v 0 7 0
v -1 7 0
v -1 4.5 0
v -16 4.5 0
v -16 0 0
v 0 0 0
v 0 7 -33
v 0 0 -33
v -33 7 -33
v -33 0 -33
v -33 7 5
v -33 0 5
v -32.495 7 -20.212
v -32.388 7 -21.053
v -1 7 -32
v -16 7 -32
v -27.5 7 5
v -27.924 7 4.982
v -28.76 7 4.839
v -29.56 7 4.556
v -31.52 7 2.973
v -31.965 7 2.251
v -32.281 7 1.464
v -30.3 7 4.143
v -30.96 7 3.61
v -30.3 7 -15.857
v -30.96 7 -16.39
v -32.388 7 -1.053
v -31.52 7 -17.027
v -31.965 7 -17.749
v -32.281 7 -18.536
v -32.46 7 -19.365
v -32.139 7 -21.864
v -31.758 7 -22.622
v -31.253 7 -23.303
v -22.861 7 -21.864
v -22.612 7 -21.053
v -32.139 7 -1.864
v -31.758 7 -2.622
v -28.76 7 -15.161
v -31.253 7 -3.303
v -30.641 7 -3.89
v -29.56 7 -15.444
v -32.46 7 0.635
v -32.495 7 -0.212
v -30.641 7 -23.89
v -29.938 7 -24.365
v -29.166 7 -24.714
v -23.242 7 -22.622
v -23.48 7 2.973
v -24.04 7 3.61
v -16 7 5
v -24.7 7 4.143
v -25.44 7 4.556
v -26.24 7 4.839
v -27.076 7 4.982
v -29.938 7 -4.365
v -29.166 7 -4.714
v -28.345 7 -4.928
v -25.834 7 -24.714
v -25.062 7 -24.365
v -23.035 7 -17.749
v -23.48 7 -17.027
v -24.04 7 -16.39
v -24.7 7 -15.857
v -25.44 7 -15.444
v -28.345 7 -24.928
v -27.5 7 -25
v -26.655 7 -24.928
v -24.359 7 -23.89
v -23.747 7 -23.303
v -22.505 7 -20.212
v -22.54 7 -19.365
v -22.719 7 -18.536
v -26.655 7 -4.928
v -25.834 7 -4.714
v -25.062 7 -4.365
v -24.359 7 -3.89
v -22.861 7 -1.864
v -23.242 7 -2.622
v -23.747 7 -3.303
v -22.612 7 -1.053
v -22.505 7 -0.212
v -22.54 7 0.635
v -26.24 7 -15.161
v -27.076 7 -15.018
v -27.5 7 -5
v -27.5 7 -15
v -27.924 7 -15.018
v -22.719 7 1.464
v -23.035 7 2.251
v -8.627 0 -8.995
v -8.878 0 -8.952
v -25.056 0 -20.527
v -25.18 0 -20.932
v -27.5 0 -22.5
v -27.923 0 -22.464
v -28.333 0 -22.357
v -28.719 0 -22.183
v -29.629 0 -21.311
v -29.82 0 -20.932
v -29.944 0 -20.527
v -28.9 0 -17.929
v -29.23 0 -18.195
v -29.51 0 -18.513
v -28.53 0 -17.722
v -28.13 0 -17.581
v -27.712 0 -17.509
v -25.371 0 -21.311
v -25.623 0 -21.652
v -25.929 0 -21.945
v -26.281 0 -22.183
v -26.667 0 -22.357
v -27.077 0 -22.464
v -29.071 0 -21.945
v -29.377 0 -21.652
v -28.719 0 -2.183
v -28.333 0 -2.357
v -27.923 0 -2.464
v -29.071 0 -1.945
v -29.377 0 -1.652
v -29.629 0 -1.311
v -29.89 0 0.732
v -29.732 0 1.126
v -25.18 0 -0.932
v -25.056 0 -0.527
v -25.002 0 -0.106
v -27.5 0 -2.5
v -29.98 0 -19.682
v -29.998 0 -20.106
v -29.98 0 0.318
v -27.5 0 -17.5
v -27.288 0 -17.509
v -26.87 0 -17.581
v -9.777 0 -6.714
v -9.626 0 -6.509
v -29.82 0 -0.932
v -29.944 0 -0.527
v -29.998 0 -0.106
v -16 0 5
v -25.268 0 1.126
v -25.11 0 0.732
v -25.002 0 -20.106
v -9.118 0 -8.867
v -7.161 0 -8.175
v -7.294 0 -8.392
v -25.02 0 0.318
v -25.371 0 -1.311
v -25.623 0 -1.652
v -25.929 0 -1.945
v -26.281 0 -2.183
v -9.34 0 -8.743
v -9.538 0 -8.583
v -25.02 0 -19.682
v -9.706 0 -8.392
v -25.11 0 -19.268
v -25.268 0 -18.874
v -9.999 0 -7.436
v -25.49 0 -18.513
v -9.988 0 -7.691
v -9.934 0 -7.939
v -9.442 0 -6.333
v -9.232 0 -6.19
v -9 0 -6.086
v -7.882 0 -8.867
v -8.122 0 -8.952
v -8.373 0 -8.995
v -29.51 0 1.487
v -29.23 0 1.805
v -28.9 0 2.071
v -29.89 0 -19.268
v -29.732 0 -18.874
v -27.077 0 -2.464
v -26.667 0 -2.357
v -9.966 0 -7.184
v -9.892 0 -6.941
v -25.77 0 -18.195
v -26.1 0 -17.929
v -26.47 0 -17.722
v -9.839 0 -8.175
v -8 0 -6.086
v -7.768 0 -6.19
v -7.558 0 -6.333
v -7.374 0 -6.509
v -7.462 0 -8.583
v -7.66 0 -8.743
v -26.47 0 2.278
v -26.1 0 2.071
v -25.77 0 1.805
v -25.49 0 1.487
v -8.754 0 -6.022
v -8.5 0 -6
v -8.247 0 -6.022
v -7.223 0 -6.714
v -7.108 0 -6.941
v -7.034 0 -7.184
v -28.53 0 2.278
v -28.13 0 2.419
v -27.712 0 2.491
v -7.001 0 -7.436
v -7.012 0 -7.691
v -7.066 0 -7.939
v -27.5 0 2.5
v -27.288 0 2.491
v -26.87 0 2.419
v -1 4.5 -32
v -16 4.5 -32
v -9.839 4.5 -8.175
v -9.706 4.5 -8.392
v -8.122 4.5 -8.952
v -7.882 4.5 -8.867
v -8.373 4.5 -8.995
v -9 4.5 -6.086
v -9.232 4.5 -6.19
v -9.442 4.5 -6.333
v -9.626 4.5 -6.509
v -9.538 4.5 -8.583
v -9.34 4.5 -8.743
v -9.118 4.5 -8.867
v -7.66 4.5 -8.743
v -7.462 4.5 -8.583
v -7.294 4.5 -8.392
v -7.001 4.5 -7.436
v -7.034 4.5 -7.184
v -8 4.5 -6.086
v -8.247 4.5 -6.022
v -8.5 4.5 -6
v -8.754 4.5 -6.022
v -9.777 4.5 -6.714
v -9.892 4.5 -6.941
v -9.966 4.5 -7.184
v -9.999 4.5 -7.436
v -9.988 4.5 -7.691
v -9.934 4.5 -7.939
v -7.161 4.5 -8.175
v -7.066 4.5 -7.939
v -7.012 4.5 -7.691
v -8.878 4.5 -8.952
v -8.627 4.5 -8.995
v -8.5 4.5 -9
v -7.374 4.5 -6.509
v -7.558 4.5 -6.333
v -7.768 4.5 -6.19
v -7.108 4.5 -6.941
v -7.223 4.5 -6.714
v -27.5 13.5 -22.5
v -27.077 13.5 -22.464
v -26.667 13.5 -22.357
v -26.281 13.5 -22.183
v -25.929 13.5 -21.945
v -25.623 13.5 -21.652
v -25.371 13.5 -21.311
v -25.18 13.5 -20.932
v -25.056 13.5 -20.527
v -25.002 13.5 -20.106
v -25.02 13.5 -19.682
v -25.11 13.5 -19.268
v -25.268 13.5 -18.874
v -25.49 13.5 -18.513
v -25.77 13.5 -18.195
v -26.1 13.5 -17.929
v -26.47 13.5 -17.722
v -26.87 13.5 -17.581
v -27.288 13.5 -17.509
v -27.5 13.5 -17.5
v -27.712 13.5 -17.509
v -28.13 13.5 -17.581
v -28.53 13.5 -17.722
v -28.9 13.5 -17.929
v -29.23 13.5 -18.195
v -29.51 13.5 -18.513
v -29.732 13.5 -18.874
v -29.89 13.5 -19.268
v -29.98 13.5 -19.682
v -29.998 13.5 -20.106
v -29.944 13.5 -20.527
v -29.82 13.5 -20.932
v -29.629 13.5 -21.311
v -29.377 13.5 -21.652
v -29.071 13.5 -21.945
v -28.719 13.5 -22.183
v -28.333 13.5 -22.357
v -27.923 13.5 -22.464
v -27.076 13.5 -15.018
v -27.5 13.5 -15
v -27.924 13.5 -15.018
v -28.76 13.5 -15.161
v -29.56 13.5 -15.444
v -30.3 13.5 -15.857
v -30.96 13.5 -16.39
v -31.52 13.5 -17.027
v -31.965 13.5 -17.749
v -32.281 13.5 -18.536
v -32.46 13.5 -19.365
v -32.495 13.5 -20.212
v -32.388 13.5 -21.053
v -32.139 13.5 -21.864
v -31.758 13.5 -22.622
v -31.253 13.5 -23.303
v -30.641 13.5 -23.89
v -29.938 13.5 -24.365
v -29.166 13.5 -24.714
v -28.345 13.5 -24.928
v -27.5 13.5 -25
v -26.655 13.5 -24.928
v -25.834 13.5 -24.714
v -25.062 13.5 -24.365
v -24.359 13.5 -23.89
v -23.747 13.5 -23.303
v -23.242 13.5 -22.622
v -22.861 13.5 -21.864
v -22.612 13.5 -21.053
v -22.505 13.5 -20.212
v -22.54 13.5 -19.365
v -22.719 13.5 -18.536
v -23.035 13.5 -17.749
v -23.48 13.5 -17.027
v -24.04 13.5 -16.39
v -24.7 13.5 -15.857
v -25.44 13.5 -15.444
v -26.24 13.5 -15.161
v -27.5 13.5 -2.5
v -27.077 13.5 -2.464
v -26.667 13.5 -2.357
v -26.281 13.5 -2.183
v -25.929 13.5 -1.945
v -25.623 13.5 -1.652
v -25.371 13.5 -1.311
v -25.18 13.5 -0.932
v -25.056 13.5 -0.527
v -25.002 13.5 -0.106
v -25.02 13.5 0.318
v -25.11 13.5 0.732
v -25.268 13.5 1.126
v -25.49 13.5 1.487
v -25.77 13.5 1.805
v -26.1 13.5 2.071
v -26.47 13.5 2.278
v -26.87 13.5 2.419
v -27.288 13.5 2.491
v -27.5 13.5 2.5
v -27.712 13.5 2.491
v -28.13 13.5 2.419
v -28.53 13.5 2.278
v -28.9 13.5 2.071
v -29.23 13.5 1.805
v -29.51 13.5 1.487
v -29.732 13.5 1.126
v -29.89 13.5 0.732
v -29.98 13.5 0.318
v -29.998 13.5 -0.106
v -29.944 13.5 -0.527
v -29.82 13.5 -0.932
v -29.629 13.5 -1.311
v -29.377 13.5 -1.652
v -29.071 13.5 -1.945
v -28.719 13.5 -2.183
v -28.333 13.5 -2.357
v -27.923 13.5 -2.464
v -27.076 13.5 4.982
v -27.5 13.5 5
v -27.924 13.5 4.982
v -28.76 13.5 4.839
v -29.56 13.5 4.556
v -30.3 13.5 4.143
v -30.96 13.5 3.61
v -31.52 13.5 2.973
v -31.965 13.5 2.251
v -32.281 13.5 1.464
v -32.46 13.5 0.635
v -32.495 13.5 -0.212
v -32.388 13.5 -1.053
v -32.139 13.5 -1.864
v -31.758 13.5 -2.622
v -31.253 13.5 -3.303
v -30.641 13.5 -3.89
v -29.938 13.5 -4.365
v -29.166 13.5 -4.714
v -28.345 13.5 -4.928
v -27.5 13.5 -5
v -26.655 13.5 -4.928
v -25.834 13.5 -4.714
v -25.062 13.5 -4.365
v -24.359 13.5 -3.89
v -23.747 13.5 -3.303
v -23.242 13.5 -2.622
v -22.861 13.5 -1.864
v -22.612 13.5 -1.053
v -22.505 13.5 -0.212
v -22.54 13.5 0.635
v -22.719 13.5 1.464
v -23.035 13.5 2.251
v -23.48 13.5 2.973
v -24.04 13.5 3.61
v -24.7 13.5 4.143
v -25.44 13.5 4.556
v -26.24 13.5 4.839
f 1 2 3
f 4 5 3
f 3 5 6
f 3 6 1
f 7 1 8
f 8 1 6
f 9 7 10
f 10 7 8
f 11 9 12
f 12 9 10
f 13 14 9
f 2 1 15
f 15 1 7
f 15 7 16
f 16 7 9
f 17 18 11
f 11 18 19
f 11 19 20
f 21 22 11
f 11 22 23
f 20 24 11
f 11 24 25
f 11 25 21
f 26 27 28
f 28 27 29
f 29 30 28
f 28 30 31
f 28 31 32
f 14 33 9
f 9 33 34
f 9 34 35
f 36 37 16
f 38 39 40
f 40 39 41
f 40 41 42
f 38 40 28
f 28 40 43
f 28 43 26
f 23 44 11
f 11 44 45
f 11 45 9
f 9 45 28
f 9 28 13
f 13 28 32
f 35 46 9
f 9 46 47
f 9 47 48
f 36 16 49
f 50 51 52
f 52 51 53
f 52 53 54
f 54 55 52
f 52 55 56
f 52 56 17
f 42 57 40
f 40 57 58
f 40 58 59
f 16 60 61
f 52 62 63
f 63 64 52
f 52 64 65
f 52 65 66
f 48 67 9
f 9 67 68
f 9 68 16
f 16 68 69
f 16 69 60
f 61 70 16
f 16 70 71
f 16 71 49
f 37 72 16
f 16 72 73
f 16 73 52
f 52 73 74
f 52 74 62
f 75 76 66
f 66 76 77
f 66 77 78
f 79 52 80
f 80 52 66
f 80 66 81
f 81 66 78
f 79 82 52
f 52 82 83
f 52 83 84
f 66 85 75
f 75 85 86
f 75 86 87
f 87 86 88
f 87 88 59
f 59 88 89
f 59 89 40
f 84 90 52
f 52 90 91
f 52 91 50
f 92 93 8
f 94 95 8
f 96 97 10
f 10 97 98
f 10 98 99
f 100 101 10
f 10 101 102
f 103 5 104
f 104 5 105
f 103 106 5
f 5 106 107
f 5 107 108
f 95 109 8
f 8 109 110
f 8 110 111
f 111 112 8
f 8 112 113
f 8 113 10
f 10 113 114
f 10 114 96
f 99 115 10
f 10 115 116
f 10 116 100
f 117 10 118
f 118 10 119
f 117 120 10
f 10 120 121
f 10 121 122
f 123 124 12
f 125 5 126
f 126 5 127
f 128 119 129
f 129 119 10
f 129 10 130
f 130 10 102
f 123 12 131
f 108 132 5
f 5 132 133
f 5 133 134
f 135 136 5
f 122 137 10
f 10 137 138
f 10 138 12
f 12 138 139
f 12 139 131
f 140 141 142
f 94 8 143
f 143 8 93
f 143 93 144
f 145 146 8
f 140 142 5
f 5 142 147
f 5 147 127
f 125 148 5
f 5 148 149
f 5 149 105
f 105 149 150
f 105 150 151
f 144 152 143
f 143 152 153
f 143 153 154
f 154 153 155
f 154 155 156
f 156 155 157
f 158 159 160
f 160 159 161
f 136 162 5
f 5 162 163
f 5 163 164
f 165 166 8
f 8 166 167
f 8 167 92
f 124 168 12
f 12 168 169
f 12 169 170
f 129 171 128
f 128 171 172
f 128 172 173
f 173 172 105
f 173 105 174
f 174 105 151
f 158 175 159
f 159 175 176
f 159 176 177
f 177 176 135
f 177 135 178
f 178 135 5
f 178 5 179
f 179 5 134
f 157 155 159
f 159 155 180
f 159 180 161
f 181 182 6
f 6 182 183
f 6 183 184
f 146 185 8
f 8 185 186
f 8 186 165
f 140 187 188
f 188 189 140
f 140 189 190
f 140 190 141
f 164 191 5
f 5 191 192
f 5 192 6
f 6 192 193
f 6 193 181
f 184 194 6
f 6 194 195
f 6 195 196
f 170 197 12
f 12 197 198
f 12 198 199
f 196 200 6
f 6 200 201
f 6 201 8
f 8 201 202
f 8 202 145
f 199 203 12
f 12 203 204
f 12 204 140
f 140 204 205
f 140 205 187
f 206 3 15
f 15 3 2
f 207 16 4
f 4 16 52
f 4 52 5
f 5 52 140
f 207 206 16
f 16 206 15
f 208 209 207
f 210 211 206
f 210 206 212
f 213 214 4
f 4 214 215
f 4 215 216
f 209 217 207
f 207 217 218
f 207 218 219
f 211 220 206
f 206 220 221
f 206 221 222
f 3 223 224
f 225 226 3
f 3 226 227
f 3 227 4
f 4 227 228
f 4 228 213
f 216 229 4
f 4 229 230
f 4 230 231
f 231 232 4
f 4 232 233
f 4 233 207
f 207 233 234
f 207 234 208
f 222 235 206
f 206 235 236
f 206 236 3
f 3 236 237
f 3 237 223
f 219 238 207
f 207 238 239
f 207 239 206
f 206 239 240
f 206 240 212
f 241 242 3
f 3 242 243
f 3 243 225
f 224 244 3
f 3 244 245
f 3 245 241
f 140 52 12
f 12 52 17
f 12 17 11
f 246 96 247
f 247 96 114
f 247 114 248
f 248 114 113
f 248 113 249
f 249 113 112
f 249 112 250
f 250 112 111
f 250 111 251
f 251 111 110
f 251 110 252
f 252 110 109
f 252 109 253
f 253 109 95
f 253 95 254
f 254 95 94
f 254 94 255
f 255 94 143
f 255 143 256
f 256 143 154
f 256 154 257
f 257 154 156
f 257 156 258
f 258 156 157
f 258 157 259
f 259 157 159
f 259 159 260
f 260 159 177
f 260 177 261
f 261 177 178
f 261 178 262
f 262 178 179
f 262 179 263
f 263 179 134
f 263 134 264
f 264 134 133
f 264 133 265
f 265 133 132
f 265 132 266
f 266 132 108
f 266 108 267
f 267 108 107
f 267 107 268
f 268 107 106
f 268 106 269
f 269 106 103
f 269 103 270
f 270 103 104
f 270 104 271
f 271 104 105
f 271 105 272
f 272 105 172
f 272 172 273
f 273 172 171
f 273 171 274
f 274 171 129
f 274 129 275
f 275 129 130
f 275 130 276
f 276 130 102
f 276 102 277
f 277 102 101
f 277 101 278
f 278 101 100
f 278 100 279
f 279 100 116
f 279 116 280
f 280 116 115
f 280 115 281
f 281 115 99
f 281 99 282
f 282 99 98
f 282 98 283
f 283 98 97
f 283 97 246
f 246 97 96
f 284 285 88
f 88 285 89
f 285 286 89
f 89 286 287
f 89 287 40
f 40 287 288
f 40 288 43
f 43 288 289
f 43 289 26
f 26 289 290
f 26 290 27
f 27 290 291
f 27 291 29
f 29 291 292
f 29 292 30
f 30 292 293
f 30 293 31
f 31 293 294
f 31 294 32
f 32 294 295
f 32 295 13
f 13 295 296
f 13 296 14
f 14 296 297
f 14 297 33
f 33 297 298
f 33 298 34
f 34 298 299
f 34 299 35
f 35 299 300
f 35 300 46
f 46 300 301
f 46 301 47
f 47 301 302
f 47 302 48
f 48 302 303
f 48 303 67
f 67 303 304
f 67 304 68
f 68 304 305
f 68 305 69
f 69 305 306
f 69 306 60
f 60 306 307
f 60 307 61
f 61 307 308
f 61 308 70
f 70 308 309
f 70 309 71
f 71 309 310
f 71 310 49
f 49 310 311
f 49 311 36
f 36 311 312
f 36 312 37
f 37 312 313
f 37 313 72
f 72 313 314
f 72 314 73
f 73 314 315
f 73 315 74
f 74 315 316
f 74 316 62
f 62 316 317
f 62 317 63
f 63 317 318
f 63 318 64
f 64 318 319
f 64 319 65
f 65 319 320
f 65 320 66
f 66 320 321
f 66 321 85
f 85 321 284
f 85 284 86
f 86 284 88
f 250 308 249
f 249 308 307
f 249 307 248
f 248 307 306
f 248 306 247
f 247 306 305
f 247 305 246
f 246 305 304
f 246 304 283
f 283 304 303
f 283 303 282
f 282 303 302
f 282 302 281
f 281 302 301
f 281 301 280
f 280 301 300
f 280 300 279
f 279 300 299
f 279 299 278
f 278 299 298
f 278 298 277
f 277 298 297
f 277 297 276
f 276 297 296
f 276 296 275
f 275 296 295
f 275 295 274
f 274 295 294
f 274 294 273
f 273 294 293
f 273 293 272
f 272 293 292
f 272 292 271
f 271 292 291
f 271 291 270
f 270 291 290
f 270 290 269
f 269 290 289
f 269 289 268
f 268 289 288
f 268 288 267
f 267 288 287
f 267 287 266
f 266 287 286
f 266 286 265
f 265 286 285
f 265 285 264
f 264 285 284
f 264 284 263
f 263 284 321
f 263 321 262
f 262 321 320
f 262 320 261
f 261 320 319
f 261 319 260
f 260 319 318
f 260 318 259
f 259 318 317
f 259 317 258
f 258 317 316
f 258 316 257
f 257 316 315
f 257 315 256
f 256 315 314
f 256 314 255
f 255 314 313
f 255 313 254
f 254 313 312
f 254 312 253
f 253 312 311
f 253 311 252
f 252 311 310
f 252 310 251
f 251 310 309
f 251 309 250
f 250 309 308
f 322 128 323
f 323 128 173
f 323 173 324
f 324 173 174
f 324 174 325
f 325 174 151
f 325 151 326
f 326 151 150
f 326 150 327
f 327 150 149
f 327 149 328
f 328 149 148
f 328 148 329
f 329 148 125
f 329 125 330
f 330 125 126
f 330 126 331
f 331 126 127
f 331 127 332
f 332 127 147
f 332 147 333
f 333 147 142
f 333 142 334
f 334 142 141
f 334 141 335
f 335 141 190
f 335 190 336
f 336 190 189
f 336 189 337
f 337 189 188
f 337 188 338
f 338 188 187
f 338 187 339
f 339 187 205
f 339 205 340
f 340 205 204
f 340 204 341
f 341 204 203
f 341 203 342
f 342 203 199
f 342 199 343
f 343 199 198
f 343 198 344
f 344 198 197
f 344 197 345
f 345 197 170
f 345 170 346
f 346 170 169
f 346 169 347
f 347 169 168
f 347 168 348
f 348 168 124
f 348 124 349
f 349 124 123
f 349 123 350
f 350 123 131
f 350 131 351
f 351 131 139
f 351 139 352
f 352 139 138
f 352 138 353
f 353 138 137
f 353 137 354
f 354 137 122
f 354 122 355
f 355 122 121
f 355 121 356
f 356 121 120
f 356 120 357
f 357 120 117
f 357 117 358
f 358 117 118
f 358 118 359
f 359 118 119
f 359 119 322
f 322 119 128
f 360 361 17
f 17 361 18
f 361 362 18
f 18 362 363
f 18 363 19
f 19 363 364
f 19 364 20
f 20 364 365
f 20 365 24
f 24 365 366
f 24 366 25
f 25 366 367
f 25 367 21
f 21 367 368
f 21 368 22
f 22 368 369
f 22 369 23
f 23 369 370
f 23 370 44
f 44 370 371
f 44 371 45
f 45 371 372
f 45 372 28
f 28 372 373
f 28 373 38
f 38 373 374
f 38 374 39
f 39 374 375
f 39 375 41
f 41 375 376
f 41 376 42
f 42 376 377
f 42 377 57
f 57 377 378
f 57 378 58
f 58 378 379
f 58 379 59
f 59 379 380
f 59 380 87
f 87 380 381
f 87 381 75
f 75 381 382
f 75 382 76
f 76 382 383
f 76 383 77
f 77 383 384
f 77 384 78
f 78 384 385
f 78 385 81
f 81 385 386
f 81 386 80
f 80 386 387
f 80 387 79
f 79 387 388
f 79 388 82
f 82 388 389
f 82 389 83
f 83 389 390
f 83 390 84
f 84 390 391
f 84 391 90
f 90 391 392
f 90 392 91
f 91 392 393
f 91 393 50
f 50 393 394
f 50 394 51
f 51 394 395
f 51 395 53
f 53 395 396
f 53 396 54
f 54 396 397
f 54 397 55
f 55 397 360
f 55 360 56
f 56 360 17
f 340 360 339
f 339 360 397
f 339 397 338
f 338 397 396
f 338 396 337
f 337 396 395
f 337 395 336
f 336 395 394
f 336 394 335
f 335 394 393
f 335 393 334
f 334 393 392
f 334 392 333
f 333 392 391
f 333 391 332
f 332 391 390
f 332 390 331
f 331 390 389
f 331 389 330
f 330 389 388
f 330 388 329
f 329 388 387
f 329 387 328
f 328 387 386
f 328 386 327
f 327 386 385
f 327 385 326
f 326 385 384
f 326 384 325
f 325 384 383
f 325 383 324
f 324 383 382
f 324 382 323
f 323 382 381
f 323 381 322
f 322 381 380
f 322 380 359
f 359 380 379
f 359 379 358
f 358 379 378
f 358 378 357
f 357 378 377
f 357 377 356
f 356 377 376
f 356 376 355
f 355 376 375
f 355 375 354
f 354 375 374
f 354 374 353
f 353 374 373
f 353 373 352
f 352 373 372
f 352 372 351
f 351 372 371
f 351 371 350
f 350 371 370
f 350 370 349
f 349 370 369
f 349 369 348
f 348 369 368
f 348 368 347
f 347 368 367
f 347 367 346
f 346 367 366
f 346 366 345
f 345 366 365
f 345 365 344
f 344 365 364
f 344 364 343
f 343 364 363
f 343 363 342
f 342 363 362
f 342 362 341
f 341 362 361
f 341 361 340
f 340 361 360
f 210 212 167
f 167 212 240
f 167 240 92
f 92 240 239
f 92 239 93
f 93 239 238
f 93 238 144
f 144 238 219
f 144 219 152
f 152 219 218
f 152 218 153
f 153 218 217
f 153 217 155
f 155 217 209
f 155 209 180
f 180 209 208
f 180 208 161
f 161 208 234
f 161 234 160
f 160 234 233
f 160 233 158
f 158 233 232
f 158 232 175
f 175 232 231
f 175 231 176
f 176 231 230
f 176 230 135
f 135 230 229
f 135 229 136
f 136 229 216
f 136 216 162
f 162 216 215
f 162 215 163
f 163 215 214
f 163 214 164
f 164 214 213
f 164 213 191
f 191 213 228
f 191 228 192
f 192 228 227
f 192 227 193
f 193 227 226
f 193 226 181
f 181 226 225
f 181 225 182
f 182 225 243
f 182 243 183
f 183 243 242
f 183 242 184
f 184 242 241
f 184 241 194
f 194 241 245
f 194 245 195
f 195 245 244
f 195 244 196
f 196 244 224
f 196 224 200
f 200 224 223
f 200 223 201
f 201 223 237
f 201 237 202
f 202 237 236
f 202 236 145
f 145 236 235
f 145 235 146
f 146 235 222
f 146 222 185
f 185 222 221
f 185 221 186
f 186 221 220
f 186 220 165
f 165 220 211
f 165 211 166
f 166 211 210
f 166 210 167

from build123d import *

# Parameters (mm, degrees)
SKETCH1_W                = 33
SKETCH1_H                = 33
BOSS_EXTRUDE1_DEPTH      = 7
SKETCH2_W                = 15
SKETCH2_H                = 32
CUT_EXTRUDE1_DEPTH       = 2.5
SKETCH4_W                = 17
SKETCH4_H                = 5
BOSS_EXTRUDE3_DEPTH      = 7
SKETCH3_R                = 5
SKETCH3_R_2              = 2.5
BOSS_EXTRUDE4_DEPTH      = 6.5
CUT_EXTRUDE4_START       = -7
CUT_EXTRUDE4_OUTLINE_R   = 2.5
CUT_EXTRUDE4_OUTLINE_R_2 = 1.5
CUT_EXTRUDE4_DEPTH       = 7


# Read off the part's stored shape, not the designer's step: Cut-Extrude4
with BuildPart() as part:
    # Sketch1 → Boss-Extrude1 (new body)
    with BuildSketch(Plane(origin=(0, 0, 0), x_dir=(1, 0, 0), z_dir=(0, 1, 0))):
        with Locations((-16.5, 16.5)):
            Rectangle(SKETCH1_W, SKETCH1_H)
    extrude(amount=BOSS_EXTRUDE1_DEPTH)

    # Sketch2 → Cut-Extrude1 (cut)
    with BuildSketch(Plane(origin=(0, 7, 0), x_dir=(1, 0, 0), z_dir=(0, 1, 0))):
        with Locations((-8.5, 16)):
            Rectangle(SKETCH2_W, SKETCH2_H)
    extrude(amount=-CUT_EXTRUDE1_DEPTH, mode=Mode.SUBTRACT)

    # Sketch4 → Boss-Extrude3 (add)
    with BuildSketch(Plane(origin=(0, 7, 0), x_dir=(1, 0, 0), z_dir=(0, 1, 0))):
        with Locations((-24.5, -2.5)):
            Rectangle(SKETCH4_W, SKETCH4_H)
    extrude(amount=-BOSS_EXTRUDE3_DEPTH)

    # Sketch3 → Boss-Extrude4 (add)
    # profile 1 of 2: a face of its own
    with BuildSketch(Plane(origin=(0, 7, 0), x_dir=(1, 0, 0), z_dir=(0, 1, 0))):
        with Locations(Location((-27.5, 20, 0), (0, 0, 90))):
            Circle(SKETCH3_R)
        with Locations(Location((-27.5, 20, 0), (0, 0, 90))):
            Circle(SKETCH3_R_2, mode=Mode.SUBTRACT)
    # profile 2 of 2: a face of its own
    with BuildSketch(Plane(origin=(0, 7, 0), x_dir=(1, 0, 0), z_dir=(0, 1, 0))):
        with Locations(Location((-27.5, 0, 0), (0, 0, 270))):
            Circle(SKETCH3_R)
        with Locations(Location((-27.5, 0, 0), (0, 0, 90))):
            Circle(SKETCH3_R_2, mode=Mode.SUBTRACT)
    extrude(amount=BOSS_EXTRUDE4_DEPTH)

    # Cut-Extrude4 outline → Cut-Extrude4 (cut)
    with BuildSketch(Plane(origin=(0, 7, 0), x_dir=(1, 0, 0), z_dir=(0, 1, 0)).offset(CUT_EXTRUDE4_START)):
        with Locations((-27.5, 20)):
            Circle(CUT_EXTRUDE4_OUTLINE_R)
        with Locations((-27.5, 0)):
            Circle(CUT_EXTRUDE4_OUTLINE_R)
        with Locations((-8.5, 7.5)):
            Circle(CUT_EXTRUDE4_OUTLINE_R_2)
    extrude(amount=CUT_EXTRUDE4_DEPTH, mode=Mode.SUBTRACT)


solid = part.part
